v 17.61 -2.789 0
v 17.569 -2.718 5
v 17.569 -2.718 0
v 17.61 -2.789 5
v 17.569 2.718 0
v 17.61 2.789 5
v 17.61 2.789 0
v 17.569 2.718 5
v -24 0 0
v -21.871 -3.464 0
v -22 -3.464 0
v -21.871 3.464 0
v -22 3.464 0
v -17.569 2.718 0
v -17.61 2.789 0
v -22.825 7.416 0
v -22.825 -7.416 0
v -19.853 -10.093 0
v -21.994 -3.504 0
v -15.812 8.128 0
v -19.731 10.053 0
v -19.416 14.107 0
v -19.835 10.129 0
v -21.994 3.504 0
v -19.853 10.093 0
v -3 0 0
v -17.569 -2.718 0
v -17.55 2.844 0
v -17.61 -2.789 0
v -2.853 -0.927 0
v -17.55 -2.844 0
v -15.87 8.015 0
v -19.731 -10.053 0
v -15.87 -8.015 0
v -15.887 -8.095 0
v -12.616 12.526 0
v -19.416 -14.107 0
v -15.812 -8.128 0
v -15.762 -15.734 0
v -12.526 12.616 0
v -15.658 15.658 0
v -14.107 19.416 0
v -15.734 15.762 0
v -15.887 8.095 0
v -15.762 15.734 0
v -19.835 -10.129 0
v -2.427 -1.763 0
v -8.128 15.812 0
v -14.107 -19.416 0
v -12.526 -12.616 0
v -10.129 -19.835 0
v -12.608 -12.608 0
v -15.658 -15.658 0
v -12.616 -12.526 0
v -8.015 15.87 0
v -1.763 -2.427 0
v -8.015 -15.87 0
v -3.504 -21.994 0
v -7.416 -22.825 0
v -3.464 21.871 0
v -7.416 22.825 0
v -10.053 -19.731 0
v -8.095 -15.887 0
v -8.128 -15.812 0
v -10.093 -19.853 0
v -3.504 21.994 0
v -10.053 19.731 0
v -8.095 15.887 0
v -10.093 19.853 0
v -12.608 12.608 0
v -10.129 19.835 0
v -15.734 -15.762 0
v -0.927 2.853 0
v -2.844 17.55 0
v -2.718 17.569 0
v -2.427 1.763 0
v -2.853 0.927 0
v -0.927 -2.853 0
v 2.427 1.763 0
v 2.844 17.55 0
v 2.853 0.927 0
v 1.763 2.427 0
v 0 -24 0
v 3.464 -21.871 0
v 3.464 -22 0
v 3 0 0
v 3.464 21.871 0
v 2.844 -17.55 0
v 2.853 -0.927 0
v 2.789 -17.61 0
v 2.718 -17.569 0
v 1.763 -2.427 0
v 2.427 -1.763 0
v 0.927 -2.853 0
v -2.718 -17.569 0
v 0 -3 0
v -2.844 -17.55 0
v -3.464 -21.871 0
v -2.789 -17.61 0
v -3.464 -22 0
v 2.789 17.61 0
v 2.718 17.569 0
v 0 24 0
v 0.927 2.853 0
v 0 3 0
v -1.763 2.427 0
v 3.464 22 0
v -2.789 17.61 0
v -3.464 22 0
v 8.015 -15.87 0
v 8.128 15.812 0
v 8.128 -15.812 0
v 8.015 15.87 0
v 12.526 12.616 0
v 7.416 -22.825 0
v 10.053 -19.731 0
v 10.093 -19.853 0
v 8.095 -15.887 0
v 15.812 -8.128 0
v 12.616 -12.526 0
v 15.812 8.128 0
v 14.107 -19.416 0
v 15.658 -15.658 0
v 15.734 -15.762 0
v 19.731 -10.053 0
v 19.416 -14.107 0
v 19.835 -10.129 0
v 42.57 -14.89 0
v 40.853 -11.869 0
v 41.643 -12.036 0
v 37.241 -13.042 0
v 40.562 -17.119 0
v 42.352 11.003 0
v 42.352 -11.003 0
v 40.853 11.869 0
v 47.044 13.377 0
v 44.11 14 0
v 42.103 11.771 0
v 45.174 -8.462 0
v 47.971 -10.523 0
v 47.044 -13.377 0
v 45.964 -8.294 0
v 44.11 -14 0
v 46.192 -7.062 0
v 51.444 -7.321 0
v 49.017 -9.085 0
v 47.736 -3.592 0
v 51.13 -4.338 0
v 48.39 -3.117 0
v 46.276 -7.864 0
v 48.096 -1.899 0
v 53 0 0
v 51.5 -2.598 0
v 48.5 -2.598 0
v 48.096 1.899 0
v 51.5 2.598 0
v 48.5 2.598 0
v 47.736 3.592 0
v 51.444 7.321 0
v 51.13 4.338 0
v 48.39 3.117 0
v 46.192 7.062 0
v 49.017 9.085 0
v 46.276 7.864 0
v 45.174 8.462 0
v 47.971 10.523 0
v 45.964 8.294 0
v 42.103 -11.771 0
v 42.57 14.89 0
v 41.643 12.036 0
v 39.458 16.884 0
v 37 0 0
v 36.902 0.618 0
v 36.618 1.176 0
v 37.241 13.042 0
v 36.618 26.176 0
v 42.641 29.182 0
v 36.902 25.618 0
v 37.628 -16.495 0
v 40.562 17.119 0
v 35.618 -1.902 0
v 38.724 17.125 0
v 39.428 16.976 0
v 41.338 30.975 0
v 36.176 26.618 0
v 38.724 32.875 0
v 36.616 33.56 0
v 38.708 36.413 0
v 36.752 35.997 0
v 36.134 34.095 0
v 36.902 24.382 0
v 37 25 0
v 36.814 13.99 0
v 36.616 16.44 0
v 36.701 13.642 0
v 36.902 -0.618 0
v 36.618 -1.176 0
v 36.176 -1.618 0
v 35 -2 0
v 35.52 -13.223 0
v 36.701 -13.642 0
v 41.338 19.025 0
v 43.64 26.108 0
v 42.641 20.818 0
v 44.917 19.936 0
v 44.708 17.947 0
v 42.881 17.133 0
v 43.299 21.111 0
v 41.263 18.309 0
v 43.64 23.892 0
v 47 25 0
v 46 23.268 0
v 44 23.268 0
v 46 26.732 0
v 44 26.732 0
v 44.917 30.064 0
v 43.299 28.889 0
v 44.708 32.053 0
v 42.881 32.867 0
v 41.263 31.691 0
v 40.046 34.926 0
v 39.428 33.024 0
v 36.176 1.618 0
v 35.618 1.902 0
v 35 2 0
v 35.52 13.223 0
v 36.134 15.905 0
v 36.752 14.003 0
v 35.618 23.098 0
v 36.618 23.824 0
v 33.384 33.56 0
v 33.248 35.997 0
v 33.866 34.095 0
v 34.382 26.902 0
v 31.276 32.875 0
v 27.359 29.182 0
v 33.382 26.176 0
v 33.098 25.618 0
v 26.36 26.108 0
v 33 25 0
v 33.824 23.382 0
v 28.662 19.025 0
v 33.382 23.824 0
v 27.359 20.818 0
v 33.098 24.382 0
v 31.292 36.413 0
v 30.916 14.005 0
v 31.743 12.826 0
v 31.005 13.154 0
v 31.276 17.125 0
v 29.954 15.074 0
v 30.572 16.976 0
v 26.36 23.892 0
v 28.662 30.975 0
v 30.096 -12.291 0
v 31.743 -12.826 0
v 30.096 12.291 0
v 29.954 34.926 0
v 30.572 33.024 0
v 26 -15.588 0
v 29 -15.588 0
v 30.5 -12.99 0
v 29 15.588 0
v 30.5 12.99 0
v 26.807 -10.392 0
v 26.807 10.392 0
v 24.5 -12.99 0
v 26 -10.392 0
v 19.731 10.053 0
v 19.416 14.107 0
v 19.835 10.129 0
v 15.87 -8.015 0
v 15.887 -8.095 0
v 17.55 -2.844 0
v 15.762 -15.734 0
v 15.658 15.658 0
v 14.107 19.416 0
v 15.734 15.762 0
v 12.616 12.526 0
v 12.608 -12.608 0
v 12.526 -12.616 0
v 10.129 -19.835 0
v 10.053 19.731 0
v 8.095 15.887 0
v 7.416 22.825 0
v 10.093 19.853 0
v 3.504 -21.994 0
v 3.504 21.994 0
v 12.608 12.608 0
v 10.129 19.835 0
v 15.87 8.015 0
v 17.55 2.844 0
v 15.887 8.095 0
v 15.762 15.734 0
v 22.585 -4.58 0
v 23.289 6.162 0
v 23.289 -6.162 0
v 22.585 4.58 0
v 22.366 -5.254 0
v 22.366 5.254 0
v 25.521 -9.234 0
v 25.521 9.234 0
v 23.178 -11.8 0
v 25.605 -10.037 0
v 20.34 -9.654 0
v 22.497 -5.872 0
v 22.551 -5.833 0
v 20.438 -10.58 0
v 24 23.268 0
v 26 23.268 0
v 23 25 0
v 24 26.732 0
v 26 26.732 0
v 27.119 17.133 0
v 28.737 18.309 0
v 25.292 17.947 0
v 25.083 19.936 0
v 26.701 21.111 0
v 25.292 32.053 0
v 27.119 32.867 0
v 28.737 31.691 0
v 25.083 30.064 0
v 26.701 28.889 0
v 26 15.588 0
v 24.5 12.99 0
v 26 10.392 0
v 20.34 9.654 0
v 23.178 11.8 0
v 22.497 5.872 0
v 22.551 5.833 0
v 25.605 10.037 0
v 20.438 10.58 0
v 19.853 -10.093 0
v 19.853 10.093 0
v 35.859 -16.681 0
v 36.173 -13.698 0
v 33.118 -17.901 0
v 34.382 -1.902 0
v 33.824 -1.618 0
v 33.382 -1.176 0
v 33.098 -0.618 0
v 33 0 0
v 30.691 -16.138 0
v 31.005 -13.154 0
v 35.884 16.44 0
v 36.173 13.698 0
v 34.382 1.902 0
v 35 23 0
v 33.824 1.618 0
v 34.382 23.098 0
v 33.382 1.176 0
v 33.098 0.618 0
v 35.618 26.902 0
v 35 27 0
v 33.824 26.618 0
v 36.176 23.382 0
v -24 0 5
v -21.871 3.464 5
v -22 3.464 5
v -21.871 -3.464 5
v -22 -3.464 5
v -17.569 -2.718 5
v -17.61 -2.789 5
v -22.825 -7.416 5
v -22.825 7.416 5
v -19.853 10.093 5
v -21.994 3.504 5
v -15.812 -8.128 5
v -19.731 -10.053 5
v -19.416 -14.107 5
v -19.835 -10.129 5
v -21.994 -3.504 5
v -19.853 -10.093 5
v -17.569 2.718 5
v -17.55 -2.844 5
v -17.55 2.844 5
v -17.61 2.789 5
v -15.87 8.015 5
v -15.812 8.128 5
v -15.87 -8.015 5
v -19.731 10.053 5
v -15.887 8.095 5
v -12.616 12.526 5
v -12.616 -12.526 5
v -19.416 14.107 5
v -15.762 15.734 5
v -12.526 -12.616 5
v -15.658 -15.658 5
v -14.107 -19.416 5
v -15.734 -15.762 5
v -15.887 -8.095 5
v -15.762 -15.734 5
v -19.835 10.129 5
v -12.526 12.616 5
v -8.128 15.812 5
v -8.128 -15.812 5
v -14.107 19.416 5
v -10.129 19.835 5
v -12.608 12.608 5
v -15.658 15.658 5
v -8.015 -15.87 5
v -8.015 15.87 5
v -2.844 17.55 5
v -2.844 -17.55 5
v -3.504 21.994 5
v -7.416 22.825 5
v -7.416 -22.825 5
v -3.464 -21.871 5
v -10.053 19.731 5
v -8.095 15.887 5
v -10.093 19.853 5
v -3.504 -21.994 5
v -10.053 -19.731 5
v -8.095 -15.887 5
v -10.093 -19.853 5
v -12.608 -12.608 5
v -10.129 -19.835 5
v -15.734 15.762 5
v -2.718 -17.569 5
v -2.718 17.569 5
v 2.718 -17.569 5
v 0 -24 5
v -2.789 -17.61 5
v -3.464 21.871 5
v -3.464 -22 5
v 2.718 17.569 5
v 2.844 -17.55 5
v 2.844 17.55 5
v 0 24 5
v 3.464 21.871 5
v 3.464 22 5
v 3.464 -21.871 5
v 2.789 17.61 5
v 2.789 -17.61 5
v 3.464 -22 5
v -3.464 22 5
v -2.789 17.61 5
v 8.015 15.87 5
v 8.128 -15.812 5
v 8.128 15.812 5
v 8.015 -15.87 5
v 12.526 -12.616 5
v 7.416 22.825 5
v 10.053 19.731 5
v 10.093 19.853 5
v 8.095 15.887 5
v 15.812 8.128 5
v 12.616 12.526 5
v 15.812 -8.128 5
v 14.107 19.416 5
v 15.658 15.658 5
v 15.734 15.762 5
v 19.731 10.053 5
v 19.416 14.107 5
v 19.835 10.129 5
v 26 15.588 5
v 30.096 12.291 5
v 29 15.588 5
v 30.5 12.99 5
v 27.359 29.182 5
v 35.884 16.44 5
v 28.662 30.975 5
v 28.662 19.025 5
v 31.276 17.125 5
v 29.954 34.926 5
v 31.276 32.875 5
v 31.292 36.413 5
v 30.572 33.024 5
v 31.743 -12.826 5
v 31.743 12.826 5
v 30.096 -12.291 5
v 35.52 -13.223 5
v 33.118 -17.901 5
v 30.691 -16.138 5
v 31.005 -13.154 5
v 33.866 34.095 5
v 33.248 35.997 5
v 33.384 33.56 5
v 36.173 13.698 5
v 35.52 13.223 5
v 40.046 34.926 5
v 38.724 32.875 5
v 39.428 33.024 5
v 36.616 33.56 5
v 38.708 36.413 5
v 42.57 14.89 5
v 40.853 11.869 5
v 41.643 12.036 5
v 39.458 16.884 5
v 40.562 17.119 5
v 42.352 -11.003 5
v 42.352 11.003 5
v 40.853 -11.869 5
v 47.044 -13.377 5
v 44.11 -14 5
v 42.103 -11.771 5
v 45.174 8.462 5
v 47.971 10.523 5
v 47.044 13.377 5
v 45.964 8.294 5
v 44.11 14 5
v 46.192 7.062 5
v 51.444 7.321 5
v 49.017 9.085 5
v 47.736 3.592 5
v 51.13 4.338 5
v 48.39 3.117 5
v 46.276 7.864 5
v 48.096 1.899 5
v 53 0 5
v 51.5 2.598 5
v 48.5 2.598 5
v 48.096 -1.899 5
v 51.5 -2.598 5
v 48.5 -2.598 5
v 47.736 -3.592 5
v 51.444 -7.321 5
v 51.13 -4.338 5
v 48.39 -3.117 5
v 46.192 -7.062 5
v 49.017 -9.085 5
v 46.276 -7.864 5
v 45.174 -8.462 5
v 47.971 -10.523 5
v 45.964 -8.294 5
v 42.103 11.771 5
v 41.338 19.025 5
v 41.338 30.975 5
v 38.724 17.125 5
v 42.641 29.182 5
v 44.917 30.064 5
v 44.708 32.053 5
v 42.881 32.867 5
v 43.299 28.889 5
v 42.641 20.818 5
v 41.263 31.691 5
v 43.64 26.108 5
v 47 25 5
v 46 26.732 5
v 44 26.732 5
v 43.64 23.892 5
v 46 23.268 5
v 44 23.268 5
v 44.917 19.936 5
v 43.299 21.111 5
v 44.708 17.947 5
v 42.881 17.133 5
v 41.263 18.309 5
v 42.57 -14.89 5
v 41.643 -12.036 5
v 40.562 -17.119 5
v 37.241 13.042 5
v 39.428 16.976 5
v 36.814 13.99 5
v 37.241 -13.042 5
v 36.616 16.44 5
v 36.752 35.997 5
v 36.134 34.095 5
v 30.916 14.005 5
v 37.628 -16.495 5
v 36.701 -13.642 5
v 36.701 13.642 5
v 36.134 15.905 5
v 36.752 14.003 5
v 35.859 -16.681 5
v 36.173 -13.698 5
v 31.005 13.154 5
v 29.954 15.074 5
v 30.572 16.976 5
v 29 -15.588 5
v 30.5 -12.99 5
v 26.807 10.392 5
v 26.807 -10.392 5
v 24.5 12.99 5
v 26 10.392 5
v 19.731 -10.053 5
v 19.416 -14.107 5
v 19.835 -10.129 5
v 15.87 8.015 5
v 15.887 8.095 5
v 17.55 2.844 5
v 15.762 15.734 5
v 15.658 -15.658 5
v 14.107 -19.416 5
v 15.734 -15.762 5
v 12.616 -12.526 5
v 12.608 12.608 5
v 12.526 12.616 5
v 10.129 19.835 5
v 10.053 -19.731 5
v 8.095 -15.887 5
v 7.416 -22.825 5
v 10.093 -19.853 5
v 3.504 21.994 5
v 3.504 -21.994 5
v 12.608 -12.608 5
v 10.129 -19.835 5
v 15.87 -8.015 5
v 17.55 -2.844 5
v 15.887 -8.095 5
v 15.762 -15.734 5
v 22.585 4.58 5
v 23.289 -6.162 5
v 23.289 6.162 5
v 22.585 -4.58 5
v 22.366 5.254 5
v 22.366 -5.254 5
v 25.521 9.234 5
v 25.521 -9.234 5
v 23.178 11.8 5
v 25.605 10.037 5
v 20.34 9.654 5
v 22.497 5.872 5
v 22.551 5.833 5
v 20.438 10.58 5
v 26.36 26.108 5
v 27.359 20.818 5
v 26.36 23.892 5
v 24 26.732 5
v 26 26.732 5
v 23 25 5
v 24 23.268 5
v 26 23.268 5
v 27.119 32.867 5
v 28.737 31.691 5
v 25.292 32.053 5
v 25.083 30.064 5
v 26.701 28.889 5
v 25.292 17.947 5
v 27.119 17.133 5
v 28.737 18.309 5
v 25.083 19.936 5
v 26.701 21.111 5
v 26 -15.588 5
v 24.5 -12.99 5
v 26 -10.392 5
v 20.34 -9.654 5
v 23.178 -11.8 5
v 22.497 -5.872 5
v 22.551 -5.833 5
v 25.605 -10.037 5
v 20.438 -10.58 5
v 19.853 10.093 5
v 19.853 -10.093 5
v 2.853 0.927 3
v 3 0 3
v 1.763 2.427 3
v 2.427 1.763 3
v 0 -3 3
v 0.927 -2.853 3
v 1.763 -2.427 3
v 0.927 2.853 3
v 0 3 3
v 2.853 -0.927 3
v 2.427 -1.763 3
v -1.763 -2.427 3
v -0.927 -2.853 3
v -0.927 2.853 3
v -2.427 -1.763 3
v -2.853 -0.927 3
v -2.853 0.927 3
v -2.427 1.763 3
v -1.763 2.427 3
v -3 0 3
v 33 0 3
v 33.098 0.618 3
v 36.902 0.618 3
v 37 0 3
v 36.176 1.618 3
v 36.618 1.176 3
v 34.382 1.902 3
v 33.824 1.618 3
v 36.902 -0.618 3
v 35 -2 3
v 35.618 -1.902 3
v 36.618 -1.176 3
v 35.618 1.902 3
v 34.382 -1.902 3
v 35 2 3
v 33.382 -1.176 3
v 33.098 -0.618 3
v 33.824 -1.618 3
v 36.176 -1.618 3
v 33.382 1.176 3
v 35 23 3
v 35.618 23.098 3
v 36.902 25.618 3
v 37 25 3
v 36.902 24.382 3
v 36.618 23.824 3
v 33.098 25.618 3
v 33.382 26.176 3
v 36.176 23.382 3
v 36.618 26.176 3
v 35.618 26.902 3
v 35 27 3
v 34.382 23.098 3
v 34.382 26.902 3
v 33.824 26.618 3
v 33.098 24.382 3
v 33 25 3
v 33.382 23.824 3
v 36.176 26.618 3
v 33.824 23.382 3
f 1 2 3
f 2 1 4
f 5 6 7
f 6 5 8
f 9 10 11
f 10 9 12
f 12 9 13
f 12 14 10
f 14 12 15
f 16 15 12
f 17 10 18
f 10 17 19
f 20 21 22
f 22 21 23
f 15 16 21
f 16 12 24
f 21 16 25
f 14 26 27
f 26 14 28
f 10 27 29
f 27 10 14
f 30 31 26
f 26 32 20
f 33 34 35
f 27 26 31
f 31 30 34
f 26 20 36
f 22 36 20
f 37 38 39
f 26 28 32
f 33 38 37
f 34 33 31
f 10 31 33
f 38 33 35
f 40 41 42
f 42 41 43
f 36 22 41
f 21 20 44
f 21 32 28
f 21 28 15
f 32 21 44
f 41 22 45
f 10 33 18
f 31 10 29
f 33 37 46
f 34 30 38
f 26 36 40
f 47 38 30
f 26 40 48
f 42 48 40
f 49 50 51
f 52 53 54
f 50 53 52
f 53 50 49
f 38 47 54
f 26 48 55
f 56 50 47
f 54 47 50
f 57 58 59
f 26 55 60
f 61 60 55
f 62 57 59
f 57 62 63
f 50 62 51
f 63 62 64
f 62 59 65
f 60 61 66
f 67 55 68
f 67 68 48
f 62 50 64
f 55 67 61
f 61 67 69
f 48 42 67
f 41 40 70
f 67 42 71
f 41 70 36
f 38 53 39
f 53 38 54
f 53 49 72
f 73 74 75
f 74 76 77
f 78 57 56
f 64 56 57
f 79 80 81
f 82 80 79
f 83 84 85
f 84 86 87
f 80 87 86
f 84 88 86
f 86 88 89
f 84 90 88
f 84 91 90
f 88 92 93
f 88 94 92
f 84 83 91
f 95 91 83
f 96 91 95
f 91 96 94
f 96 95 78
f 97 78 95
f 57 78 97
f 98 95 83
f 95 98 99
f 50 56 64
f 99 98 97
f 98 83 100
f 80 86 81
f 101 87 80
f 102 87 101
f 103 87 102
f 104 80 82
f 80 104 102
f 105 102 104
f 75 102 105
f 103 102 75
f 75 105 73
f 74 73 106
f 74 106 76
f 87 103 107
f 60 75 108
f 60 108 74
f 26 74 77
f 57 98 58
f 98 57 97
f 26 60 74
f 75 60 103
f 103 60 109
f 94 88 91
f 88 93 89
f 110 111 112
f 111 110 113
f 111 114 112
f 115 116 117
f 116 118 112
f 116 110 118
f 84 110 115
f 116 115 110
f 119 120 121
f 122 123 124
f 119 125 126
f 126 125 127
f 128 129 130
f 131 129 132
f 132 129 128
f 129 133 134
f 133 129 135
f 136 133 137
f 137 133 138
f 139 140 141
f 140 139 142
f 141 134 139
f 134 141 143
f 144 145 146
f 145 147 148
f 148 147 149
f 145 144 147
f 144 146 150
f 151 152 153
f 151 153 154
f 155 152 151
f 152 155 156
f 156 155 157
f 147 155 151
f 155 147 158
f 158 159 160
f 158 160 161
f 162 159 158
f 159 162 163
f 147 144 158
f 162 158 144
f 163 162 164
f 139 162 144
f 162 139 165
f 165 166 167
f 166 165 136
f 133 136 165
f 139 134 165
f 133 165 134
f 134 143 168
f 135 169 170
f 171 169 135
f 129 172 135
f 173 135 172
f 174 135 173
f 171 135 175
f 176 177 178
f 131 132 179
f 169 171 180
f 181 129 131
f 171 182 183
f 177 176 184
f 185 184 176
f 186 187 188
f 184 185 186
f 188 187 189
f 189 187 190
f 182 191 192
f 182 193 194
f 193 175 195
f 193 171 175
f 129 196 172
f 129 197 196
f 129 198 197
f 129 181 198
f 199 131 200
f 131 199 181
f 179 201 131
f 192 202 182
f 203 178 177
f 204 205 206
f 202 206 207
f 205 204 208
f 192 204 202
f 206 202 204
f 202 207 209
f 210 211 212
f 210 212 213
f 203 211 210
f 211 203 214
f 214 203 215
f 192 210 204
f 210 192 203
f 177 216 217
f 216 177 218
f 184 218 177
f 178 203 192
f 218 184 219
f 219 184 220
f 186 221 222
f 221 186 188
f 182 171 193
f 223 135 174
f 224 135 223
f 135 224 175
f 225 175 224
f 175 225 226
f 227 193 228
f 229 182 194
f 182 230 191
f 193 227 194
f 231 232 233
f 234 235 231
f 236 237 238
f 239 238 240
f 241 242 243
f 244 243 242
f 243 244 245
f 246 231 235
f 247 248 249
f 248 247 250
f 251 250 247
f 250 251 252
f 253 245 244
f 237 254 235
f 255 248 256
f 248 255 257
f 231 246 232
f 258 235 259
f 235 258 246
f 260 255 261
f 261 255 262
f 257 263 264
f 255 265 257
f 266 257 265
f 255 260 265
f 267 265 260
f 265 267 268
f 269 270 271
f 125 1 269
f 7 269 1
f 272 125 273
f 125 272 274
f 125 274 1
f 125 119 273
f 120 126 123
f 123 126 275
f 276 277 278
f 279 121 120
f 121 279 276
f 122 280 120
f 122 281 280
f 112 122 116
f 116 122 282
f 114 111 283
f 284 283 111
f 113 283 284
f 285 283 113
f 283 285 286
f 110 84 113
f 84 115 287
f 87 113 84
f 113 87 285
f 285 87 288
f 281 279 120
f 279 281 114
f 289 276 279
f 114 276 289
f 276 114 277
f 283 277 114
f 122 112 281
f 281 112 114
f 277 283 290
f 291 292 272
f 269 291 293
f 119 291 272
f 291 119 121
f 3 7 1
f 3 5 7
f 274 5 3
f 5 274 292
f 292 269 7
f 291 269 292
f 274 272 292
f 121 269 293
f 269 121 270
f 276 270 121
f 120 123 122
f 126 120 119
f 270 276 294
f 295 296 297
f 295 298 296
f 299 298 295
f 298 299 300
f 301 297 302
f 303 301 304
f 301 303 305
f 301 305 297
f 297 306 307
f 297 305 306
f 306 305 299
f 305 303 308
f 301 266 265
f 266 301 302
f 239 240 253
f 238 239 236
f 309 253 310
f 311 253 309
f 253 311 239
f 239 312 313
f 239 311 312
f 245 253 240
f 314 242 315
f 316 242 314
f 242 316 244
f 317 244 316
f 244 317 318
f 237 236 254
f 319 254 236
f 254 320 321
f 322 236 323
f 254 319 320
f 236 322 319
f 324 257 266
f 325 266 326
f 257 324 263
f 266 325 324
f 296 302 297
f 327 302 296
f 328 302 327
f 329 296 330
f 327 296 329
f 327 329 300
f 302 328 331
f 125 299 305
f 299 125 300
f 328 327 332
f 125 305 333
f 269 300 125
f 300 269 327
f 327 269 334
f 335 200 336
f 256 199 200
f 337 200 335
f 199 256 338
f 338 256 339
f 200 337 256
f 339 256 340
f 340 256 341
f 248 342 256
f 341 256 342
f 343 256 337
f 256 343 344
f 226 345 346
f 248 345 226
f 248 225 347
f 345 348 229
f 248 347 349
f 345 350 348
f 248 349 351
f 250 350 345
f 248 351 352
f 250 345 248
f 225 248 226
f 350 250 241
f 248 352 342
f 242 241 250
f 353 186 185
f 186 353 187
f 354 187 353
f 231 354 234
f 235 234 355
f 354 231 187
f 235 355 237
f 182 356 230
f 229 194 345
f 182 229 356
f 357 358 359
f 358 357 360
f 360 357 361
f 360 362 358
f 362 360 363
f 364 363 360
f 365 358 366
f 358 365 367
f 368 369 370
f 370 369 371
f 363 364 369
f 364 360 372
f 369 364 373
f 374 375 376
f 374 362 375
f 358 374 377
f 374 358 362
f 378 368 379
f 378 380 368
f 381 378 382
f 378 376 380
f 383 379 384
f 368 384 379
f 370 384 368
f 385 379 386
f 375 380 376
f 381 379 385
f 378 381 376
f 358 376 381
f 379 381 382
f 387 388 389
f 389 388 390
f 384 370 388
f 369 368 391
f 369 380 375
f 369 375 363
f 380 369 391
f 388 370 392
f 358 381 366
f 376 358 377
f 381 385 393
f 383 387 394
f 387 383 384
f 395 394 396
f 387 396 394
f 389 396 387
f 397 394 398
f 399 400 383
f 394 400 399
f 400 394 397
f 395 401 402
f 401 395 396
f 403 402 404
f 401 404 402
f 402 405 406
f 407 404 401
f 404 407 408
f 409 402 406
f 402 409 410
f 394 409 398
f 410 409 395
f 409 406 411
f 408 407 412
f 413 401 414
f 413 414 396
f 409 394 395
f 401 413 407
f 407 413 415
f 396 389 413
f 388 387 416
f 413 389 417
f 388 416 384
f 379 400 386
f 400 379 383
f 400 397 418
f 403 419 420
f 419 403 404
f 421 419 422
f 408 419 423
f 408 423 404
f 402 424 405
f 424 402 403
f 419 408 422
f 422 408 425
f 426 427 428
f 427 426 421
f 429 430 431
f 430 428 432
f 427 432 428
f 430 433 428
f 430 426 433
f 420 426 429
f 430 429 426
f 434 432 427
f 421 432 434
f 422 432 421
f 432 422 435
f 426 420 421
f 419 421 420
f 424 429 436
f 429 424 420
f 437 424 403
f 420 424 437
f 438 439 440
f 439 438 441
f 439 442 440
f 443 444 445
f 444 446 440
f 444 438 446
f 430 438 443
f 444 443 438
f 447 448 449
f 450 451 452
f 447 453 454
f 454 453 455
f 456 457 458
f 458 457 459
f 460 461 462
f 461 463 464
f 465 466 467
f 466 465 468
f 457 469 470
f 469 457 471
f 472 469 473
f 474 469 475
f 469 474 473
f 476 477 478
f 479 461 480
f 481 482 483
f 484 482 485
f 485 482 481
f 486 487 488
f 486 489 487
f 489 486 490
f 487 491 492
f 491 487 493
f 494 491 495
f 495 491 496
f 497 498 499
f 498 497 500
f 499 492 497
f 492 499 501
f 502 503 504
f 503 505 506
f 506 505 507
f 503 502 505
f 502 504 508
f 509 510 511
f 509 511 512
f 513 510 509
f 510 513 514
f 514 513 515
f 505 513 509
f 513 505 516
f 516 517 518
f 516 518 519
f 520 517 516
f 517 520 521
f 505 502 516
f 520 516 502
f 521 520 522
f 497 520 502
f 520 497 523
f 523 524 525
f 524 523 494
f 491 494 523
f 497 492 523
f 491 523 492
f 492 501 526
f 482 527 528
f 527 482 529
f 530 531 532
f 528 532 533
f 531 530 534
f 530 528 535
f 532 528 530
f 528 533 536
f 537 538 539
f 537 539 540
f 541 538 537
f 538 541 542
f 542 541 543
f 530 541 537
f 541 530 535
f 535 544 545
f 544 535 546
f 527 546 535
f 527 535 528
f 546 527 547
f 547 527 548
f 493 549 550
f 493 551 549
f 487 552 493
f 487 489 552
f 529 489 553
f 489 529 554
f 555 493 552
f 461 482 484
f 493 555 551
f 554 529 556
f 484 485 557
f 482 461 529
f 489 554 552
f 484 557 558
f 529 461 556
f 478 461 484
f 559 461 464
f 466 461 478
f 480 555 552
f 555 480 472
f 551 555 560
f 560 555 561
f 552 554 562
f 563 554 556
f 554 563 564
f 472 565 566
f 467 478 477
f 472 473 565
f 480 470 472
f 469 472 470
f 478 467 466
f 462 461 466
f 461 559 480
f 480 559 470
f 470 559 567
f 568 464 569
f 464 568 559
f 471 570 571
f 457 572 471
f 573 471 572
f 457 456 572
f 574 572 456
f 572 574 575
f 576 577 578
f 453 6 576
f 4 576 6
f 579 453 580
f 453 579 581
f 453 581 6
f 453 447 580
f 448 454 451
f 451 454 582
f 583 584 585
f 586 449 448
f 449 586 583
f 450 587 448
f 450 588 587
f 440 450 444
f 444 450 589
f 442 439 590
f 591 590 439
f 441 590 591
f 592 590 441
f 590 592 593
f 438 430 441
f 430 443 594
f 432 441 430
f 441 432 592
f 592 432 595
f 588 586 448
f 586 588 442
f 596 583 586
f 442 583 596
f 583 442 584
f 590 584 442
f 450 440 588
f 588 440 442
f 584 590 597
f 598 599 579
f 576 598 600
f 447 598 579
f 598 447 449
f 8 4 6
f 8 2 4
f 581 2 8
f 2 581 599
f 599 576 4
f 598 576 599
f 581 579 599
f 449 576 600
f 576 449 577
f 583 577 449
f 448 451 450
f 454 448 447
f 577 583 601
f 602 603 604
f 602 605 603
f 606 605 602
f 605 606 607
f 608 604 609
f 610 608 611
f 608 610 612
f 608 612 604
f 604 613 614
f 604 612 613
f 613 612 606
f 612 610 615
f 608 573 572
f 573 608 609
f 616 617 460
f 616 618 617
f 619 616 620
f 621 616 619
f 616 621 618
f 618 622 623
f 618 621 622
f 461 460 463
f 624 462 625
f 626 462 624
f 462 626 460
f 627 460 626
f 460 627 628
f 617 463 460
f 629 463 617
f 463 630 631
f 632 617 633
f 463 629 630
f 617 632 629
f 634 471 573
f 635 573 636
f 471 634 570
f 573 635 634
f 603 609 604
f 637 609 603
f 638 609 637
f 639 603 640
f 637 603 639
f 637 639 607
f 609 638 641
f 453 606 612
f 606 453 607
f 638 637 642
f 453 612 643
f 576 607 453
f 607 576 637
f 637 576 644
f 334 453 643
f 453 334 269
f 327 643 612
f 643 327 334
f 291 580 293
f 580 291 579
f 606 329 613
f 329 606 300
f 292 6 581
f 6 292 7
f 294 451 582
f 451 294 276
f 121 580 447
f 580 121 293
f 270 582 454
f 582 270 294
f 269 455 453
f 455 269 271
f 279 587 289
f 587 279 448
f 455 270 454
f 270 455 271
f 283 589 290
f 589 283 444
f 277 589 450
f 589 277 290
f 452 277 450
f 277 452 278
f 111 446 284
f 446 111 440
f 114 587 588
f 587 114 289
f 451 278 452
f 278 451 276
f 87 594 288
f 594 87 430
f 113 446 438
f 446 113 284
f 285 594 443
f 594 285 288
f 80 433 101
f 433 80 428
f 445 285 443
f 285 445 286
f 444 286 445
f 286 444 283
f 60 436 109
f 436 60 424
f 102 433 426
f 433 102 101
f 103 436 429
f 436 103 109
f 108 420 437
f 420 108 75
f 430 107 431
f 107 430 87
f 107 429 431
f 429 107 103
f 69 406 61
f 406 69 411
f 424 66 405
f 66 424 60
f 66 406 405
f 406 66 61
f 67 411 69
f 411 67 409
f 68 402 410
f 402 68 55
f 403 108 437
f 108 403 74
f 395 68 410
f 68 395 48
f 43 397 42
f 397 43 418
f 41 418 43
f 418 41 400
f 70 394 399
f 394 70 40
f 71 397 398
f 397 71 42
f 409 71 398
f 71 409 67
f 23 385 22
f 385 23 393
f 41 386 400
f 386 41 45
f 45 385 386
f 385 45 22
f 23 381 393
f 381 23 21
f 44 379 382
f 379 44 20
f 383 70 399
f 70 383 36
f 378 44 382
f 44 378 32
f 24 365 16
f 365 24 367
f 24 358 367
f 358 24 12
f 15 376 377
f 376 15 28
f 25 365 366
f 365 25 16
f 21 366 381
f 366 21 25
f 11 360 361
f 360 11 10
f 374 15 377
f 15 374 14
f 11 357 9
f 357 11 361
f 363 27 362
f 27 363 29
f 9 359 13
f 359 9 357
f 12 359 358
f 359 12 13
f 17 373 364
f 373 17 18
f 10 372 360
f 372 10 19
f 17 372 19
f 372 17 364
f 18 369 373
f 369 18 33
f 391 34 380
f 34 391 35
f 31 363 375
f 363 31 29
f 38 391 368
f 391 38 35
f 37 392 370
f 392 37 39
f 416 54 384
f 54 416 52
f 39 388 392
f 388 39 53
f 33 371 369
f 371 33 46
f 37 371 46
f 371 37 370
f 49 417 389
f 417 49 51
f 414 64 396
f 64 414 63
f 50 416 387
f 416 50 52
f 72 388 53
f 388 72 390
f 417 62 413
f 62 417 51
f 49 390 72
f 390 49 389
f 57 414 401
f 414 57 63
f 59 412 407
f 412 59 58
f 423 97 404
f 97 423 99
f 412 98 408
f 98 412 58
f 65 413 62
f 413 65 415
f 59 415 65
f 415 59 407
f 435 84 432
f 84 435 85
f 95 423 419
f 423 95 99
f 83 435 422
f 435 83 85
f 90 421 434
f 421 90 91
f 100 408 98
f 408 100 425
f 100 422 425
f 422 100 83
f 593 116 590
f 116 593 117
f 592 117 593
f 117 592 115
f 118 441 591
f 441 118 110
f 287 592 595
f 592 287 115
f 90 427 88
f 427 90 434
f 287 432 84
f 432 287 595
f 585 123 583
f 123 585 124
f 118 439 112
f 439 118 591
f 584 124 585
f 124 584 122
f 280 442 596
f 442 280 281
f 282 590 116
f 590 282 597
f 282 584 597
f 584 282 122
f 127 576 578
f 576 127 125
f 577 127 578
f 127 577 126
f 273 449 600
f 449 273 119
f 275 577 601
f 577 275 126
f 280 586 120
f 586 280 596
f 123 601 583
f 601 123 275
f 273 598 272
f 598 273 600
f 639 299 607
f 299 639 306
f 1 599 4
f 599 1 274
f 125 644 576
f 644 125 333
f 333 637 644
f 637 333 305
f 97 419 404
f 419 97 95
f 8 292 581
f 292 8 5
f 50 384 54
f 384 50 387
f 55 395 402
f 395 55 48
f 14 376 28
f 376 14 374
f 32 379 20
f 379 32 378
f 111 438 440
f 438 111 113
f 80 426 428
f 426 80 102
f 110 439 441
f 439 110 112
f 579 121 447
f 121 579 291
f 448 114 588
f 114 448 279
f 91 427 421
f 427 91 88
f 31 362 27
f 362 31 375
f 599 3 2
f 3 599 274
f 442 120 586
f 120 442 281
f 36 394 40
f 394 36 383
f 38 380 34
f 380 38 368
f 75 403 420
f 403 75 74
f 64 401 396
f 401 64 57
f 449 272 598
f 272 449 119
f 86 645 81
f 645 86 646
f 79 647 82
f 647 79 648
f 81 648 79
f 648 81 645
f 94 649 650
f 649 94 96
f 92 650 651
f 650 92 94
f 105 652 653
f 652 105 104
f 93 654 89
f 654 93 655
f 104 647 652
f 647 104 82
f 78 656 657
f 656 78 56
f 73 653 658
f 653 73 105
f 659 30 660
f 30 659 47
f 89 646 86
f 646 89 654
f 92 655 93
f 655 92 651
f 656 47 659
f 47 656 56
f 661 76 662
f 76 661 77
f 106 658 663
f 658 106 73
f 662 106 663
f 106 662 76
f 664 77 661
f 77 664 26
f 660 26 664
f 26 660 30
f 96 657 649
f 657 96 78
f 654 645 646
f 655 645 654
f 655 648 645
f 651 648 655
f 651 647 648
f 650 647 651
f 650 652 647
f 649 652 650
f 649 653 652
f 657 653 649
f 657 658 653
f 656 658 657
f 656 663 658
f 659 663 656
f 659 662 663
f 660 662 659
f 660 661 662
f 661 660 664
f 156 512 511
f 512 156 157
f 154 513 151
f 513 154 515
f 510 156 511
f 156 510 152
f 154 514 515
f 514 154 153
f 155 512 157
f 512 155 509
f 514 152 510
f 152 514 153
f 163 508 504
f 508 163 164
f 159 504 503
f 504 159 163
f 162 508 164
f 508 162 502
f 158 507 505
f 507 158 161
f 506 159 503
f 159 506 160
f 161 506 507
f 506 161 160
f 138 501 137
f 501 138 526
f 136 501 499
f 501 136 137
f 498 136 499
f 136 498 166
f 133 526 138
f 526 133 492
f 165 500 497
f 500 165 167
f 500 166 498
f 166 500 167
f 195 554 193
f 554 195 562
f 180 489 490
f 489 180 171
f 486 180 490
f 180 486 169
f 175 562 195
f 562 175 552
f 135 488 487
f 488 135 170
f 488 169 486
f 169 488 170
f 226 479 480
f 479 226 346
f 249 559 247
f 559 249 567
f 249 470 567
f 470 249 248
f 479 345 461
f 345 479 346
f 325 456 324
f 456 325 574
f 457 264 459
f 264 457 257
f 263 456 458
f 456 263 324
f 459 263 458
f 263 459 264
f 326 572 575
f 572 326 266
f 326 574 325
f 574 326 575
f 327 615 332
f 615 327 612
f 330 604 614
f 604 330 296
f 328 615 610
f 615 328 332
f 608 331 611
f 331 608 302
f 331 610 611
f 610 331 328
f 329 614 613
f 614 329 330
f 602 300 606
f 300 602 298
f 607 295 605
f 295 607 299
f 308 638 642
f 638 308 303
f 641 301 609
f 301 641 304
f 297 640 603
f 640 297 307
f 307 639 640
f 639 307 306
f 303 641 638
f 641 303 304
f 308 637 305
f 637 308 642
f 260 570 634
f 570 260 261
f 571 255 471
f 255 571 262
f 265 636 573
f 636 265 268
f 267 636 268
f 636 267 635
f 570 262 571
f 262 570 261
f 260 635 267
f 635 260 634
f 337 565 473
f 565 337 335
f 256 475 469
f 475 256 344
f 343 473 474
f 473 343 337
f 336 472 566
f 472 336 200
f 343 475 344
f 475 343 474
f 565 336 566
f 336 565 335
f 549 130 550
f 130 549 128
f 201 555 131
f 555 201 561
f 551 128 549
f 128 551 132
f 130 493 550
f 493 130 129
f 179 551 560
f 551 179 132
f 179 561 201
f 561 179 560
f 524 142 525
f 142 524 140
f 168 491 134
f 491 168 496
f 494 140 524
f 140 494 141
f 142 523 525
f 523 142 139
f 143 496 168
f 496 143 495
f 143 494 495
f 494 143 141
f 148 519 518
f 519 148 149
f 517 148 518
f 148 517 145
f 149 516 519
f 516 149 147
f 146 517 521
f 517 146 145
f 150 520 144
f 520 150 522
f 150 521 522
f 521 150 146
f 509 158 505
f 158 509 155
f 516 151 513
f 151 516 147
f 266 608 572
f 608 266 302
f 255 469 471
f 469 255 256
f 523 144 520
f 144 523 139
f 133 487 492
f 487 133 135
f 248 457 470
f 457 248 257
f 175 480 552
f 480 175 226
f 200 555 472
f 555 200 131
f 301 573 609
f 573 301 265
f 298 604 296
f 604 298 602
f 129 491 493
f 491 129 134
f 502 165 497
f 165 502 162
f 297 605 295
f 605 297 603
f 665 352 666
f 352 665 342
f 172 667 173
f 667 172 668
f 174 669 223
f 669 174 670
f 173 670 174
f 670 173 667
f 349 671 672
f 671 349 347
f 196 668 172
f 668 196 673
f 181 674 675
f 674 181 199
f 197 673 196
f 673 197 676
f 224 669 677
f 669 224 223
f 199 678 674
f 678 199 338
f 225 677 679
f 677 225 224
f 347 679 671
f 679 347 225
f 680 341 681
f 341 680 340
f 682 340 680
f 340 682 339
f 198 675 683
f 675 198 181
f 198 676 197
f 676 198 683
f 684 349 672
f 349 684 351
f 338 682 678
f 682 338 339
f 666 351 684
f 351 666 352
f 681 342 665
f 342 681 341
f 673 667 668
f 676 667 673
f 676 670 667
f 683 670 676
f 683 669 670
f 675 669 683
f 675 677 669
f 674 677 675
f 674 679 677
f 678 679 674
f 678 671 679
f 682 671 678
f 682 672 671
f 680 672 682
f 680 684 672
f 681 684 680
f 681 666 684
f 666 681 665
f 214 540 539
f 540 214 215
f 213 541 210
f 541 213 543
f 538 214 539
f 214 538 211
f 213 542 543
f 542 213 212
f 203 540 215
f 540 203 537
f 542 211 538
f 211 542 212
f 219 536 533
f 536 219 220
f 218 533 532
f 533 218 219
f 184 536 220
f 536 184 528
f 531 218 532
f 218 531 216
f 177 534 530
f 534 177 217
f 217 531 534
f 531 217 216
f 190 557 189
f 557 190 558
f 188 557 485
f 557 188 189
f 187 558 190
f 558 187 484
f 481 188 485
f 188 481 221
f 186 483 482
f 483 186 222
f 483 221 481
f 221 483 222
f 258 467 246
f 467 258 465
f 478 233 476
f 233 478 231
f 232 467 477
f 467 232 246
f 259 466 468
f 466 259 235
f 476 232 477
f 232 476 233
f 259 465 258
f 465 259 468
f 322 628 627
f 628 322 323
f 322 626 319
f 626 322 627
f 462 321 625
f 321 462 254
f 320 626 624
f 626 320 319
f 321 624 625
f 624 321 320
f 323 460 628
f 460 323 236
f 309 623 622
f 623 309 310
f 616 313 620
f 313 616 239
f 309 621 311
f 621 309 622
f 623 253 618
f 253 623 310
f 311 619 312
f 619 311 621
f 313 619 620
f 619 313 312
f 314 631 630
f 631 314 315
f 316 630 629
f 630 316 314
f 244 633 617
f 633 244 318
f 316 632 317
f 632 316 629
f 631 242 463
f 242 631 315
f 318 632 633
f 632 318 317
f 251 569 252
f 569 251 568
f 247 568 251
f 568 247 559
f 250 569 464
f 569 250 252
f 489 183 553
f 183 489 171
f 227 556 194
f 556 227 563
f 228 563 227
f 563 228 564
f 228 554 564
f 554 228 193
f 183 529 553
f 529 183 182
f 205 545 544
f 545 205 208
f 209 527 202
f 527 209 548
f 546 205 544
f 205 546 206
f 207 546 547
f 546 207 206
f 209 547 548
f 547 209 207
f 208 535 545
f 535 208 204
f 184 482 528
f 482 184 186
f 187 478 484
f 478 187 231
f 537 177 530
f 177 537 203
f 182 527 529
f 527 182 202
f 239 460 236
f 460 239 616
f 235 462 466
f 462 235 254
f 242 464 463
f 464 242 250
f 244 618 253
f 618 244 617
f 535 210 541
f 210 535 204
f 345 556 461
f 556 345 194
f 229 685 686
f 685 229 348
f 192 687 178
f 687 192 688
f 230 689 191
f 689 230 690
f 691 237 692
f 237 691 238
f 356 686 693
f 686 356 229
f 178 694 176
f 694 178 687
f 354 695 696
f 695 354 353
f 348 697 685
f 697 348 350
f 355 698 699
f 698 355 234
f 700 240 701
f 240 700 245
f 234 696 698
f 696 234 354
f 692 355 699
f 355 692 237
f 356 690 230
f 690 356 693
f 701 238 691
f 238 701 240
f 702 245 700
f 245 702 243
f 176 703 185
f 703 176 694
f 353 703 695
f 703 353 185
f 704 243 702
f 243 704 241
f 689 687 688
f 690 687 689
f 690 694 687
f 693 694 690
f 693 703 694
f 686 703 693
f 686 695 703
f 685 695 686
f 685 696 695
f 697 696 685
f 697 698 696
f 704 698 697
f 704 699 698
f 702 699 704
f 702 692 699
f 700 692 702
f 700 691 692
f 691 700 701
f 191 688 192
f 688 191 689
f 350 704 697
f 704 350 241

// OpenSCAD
// Interlocking gear train system
module gear(teeth, radius, thickness, hole_radius = 0) {
    difference() {
        union() {
            // Main gear body
            cylinder(h = thickness, r = radius * 0.9, $fn = teeth);
            
            // Teeth
            for (i = [0:teeth-1]) {
                rotate([0, 0, i * 360 / teeth])
                    translate([radius, 0, 0])
                    cylinder(h = thickness, r = radius / 5, $fn = 6);
            }
        }
        
        // Center hole
        if (hole_radius > 0)
            cylinder(h = thickness + 1, r = hole_radius, center = true, $fn = 20);
    }
}

// Gear specifications
gear1_teeth = 20;
gear2_teeth = 15;
gear3_teeth = 10;
module_size = 1;
thickness = 5;

// Calculate radii
gear1_radius = gear1_teeth * module_size;
gear2_radius = gear2_teeth * module_size;
gear3_radius = gear3_teeth * module_size;

// Place gears
rotate([0, 0, $t * 360])
    gear(gear1_teeth, gear1_radius, thickness, 3);

translate([gear1_radius + gear2_radius, 0, 0])
    rotate([0, 0, -$t * 360 * gear1_teeth / gear2_teeth])
    gear(gear2_teeth, gear2_radius, thickness, 2);

translate([gear1_radius + gear2_radius, gear2_radius + gear3_radius, 0])
    rotate([0, 0, $t * 360 * gear1_teeth / gear3_teeth])
    gear(gear3_teeth, gear3_radius, thickness, 2);
